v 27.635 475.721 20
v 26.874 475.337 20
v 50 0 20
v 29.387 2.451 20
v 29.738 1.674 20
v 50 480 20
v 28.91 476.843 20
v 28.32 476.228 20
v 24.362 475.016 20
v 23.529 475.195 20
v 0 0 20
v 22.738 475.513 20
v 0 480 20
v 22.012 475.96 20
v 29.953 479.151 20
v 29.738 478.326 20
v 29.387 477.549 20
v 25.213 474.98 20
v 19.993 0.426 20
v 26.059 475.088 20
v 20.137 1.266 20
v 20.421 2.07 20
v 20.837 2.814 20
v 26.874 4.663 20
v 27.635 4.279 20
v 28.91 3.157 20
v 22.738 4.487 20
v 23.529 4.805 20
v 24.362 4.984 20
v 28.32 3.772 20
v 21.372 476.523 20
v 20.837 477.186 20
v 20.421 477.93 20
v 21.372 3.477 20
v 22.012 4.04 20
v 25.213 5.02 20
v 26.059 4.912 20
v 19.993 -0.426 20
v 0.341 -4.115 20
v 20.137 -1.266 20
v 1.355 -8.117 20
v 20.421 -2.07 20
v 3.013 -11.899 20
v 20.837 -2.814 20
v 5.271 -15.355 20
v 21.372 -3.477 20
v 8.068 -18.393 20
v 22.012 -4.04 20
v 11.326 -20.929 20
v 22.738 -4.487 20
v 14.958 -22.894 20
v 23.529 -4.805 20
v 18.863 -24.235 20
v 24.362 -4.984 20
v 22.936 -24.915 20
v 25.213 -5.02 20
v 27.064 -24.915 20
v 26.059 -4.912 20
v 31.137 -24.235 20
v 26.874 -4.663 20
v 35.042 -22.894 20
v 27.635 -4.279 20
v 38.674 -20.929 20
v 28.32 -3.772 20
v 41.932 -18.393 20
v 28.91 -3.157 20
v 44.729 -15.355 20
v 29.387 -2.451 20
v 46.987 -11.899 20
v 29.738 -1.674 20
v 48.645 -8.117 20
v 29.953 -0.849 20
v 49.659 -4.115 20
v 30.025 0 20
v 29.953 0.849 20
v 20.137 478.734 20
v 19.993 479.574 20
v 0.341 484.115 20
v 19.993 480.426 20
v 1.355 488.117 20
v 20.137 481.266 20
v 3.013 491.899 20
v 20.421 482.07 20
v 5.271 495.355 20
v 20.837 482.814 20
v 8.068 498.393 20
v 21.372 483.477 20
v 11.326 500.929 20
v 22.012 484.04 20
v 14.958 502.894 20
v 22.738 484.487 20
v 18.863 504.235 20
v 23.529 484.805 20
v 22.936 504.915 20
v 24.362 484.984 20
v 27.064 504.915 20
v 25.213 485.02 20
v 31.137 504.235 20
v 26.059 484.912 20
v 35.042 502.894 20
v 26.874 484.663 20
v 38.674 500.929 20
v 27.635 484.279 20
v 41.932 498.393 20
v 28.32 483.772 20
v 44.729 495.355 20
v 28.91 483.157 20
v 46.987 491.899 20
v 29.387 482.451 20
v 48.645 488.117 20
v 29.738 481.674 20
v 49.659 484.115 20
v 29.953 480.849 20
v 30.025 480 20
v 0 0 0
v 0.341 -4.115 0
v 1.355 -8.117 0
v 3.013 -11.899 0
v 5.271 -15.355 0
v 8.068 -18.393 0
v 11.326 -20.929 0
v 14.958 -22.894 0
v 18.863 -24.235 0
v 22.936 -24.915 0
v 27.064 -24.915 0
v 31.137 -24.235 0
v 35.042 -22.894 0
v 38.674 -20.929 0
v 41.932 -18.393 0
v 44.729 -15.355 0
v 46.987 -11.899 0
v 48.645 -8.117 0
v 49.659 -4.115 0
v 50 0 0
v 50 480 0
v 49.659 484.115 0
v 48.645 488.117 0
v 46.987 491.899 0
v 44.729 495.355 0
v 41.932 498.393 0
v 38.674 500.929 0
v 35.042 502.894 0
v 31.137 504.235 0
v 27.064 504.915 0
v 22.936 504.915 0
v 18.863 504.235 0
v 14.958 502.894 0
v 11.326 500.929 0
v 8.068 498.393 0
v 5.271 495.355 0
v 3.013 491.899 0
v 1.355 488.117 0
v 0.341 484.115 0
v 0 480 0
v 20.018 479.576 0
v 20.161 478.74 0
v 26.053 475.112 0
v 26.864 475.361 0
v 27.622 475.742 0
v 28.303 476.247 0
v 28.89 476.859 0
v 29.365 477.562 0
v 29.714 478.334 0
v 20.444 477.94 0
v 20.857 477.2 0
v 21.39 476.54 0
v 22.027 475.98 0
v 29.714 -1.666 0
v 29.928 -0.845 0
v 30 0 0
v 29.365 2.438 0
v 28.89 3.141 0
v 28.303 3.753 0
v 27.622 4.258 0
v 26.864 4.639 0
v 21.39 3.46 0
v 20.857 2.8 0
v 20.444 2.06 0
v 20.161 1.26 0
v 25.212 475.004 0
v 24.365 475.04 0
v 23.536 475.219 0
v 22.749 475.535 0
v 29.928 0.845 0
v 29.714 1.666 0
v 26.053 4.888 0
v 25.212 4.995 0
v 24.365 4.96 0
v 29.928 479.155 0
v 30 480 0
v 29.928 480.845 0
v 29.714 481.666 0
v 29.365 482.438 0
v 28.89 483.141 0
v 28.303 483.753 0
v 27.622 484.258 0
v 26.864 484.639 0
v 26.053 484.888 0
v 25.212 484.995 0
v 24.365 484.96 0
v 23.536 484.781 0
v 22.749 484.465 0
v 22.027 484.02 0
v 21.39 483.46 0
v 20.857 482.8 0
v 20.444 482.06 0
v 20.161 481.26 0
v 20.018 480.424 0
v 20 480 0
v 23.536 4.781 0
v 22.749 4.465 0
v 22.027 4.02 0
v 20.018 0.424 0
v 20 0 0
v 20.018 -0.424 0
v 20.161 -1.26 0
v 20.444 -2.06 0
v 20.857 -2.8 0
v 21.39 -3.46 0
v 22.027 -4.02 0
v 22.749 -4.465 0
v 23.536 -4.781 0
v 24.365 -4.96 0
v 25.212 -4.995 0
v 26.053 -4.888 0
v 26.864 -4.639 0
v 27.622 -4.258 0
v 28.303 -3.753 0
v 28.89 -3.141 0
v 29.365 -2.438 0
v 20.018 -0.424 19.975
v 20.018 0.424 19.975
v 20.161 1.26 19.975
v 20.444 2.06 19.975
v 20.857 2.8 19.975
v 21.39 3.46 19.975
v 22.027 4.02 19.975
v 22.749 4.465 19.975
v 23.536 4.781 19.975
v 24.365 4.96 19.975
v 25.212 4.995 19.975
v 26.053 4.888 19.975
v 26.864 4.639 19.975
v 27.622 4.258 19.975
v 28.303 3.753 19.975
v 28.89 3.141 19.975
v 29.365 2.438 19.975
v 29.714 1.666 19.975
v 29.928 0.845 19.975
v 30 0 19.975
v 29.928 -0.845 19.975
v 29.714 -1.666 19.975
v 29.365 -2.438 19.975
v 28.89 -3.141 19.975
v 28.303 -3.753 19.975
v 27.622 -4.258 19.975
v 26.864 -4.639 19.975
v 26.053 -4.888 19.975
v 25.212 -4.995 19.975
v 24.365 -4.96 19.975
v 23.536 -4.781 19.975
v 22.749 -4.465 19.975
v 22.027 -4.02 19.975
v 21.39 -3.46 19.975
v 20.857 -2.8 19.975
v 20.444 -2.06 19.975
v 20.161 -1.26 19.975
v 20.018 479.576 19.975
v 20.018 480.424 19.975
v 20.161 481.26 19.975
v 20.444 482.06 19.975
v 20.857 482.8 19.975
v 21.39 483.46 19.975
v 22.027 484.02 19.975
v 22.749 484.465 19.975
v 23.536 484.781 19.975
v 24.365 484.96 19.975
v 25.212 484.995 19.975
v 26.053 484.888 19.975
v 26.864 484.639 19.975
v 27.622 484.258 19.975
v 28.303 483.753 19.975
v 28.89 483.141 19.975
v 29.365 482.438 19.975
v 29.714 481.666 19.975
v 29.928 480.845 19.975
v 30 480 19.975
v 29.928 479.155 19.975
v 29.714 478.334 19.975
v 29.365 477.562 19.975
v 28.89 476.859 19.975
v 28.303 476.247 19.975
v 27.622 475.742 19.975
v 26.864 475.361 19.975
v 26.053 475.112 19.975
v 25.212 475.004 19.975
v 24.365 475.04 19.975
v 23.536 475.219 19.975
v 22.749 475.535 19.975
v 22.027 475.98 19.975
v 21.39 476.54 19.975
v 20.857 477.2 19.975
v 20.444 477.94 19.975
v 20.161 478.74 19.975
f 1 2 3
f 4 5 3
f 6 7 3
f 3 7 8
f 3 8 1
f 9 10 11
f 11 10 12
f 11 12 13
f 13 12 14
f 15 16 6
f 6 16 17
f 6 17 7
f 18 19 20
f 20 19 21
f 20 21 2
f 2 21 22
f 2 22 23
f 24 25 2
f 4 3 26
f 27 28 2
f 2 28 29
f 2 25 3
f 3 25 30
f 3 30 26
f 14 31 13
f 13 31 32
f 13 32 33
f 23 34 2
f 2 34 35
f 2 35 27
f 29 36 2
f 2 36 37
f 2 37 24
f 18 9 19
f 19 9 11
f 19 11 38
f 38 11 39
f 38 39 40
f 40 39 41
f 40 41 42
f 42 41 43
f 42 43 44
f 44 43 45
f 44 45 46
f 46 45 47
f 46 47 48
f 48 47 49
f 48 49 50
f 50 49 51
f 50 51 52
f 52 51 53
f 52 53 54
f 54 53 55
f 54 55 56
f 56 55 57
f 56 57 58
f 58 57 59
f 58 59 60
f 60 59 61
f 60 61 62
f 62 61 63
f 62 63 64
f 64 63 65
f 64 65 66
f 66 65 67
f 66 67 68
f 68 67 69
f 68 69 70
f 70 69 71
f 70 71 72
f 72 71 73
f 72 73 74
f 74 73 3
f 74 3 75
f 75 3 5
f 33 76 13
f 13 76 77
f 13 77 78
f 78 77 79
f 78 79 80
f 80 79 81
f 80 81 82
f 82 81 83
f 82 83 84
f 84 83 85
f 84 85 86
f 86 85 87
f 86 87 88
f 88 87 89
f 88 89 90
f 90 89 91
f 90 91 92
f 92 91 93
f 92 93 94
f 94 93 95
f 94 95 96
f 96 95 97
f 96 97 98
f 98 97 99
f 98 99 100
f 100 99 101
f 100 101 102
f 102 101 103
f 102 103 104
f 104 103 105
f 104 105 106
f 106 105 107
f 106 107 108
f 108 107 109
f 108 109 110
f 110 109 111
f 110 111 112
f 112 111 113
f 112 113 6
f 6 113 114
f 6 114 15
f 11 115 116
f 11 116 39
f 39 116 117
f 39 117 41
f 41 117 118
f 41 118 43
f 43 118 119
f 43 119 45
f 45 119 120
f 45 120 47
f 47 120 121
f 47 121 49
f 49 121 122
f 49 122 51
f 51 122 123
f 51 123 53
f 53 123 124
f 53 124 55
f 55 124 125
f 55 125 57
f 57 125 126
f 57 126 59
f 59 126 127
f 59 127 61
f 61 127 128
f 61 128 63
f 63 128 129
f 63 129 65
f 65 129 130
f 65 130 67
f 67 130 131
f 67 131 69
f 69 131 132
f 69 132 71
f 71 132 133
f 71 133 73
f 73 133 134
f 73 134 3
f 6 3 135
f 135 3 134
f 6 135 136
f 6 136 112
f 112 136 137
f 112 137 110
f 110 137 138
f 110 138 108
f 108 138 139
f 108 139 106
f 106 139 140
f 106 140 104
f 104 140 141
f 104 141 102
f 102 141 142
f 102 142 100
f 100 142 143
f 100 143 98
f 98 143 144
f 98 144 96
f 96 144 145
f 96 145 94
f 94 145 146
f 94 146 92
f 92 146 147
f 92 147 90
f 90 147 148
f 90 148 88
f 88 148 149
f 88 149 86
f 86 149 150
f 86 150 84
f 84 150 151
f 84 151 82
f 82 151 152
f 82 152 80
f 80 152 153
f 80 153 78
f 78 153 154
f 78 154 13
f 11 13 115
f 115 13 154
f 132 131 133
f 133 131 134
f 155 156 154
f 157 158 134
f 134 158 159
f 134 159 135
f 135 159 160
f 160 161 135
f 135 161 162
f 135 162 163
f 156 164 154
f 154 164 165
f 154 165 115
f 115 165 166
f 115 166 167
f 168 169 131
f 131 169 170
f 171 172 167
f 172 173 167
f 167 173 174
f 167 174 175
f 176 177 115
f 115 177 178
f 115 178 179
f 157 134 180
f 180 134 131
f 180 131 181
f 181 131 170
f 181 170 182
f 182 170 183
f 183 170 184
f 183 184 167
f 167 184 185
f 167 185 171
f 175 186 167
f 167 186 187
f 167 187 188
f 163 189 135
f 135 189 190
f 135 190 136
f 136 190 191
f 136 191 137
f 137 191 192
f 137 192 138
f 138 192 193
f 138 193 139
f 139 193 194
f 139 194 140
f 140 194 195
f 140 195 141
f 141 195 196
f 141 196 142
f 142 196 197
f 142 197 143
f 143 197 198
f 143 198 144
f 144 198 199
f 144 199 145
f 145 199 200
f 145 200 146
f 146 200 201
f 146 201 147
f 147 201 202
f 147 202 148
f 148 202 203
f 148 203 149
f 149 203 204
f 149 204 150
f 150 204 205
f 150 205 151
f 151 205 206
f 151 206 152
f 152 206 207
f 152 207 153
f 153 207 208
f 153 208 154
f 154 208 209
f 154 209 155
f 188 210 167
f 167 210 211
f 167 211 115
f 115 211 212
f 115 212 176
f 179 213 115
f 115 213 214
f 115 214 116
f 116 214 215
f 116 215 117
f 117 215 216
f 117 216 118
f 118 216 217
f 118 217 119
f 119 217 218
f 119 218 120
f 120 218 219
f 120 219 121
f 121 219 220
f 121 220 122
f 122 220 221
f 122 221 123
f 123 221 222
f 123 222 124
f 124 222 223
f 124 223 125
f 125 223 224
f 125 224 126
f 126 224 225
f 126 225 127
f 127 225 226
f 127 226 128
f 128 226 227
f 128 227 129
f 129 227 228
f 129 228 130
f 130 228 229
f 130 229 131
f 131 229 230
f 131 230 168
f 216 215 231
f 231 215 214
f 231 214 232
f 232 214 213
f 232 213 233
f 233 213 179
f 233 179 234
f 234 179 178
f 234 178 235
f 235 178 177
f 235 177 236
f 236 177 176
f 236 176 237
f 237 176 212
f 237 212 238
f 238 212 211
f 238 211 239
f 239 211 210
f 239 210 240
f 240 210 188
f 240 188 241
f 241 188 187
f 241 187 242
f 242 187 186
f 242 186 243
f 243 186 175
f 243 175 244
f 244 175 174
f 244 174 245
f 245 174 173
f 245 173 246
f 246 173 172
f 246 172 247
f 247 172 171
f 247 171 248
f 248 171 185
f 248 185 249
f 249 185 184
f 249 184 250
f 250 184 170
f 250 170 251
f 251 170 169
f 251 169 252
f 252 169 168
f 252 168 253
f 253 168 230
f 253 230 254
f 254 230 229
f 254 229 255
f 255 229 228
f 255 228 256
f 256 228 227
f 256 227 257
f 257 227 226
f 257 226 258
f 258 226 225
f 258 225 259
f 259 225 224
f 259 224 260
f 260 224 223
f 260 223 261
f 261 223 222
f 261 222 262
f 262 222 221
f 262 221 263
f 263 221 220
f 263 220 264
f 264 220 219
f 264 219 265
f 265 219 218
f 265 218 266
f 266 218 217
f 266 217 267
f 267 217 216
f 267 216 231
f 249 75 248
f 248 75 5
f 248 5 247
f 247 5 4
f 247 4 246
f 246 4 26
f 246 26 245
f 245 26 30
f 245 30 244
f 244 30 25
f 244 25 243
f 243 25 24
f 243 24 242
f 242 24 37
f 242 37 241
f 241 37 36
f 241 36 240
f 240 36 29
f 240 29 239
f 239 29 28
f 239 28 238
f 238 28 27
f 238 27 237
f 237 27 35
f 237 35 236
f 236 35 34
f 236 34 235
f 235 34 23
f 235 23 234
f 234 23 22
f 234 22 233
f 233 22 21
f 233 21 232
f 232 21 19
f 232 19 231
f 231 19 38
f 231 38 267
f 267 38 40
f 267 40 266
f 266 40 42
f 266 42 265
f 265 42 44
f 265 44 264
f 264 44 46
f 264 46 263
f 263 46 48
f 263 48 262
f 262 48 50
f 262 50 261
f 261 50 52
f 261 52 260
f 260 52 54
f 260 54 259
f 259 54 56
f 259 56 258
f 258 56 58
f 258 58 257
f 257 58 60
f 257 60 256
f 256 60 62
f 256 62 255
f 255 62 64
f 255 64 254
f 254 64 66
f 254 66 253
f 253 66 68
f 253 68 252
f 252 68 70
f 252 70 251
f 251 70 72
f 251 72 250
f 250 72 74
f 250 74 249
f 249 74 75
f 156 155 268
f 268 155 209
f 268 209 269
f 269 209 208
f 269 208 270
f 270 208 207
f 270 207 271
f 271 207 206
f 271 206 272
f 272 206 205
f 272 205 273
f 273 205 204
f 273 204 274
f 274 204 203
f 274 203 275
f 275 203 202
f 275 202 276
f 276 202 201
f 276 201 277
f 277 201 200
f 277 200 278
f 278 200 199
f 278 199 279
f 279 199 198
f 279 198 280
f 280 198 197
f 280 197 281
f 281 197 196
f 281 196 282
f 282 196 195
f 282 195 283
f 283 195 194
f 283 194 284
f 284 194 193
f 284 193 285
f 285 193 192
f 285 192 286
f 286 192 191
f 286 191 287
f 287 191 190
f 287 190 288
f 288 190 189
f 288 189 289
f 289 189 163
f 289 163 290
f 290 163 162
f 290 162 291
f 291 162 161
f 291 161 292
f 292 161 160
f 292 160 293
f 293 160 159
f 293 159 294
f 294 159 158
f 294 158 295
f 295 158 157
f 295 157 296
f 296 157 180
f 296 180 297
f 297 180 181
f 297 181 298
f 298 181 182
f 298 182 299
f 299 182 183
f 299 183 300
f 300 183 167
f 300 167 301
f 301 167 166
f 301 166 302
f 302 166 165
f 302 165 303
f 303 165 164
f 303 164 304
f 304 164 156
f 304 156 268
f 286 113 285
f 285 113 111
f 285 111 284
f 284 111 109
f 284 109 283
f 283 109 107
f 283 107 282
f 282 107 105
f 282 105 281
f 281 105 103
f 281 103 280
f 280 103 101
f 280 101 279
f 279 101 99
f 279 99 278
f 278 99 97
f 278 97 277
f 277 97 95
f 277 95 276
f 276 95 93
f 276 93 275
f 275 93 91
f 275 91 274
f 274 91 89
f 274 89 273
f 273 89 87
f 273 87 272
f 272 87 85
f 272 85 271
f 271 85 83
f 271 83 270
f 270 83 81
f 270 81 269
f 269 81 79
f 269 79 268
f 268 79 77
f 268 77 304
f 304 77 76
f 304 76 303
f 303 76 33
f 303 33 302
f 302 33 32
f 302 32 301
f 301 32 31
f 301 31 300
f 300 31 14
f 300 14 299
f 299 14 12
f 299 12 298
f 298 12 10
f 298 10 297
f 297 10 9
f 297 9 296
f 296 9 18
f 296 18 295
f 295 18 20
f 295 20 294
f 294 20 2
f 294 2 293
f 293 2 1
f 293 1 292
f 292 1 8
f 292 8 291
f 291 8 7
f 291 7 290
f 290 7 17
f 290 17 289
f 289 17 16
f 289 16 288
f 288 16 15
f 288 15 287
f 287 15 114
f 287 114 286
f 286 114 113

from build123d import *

# Parameters (mm, degrees)
BOSS_EXTRUDE1_DEPTH              = 20
F_10_0MM_DOWEL_HOLE1_D           = 10
F_10_0MM_DOWEL_HOLE1_DEPTH       = 20
F_10_0MM_DOWEL_HOLE1_CSINK_D     = 10.05
F_10_0MM_DOWEL_HOLE1_CSINK_ANGLE = 90


with BuildPart() as part:
    # Sketch1 → Boss-Extrude1 (new body)
    with BuildSketch(Plane.XY):
        with BuildLine():
            Line((0, 0), (0, 480))
            ThreePointArc((0, 480), (25, 505), (50, 480))
            Line((50, 480), (50, 0))
            ThreePointArc((50, 0), (25, -25), (0, 0))
        make_face()
    extrude(amount=BOSS_EXTRUDE1_DEPTH)

    # Ø10.0mm Dowel Hole1
    with Locations(Plane.XY.offset(20)):
        with Locations((25, 480), (25, 0)):
            CounterSinkHole(F_10_0MM_DOWEL_HOLE1_D / 2, F_10_0MM_DOWEL_HOLE1_CSINK_D / 2, depth=F_10_0MM_DOWEL_HOLE1_DEPTH, counter_sink_angle=F_10_0MM_DOWEL_HOLE1_CSINK_ANGLE)


solid = part.part
